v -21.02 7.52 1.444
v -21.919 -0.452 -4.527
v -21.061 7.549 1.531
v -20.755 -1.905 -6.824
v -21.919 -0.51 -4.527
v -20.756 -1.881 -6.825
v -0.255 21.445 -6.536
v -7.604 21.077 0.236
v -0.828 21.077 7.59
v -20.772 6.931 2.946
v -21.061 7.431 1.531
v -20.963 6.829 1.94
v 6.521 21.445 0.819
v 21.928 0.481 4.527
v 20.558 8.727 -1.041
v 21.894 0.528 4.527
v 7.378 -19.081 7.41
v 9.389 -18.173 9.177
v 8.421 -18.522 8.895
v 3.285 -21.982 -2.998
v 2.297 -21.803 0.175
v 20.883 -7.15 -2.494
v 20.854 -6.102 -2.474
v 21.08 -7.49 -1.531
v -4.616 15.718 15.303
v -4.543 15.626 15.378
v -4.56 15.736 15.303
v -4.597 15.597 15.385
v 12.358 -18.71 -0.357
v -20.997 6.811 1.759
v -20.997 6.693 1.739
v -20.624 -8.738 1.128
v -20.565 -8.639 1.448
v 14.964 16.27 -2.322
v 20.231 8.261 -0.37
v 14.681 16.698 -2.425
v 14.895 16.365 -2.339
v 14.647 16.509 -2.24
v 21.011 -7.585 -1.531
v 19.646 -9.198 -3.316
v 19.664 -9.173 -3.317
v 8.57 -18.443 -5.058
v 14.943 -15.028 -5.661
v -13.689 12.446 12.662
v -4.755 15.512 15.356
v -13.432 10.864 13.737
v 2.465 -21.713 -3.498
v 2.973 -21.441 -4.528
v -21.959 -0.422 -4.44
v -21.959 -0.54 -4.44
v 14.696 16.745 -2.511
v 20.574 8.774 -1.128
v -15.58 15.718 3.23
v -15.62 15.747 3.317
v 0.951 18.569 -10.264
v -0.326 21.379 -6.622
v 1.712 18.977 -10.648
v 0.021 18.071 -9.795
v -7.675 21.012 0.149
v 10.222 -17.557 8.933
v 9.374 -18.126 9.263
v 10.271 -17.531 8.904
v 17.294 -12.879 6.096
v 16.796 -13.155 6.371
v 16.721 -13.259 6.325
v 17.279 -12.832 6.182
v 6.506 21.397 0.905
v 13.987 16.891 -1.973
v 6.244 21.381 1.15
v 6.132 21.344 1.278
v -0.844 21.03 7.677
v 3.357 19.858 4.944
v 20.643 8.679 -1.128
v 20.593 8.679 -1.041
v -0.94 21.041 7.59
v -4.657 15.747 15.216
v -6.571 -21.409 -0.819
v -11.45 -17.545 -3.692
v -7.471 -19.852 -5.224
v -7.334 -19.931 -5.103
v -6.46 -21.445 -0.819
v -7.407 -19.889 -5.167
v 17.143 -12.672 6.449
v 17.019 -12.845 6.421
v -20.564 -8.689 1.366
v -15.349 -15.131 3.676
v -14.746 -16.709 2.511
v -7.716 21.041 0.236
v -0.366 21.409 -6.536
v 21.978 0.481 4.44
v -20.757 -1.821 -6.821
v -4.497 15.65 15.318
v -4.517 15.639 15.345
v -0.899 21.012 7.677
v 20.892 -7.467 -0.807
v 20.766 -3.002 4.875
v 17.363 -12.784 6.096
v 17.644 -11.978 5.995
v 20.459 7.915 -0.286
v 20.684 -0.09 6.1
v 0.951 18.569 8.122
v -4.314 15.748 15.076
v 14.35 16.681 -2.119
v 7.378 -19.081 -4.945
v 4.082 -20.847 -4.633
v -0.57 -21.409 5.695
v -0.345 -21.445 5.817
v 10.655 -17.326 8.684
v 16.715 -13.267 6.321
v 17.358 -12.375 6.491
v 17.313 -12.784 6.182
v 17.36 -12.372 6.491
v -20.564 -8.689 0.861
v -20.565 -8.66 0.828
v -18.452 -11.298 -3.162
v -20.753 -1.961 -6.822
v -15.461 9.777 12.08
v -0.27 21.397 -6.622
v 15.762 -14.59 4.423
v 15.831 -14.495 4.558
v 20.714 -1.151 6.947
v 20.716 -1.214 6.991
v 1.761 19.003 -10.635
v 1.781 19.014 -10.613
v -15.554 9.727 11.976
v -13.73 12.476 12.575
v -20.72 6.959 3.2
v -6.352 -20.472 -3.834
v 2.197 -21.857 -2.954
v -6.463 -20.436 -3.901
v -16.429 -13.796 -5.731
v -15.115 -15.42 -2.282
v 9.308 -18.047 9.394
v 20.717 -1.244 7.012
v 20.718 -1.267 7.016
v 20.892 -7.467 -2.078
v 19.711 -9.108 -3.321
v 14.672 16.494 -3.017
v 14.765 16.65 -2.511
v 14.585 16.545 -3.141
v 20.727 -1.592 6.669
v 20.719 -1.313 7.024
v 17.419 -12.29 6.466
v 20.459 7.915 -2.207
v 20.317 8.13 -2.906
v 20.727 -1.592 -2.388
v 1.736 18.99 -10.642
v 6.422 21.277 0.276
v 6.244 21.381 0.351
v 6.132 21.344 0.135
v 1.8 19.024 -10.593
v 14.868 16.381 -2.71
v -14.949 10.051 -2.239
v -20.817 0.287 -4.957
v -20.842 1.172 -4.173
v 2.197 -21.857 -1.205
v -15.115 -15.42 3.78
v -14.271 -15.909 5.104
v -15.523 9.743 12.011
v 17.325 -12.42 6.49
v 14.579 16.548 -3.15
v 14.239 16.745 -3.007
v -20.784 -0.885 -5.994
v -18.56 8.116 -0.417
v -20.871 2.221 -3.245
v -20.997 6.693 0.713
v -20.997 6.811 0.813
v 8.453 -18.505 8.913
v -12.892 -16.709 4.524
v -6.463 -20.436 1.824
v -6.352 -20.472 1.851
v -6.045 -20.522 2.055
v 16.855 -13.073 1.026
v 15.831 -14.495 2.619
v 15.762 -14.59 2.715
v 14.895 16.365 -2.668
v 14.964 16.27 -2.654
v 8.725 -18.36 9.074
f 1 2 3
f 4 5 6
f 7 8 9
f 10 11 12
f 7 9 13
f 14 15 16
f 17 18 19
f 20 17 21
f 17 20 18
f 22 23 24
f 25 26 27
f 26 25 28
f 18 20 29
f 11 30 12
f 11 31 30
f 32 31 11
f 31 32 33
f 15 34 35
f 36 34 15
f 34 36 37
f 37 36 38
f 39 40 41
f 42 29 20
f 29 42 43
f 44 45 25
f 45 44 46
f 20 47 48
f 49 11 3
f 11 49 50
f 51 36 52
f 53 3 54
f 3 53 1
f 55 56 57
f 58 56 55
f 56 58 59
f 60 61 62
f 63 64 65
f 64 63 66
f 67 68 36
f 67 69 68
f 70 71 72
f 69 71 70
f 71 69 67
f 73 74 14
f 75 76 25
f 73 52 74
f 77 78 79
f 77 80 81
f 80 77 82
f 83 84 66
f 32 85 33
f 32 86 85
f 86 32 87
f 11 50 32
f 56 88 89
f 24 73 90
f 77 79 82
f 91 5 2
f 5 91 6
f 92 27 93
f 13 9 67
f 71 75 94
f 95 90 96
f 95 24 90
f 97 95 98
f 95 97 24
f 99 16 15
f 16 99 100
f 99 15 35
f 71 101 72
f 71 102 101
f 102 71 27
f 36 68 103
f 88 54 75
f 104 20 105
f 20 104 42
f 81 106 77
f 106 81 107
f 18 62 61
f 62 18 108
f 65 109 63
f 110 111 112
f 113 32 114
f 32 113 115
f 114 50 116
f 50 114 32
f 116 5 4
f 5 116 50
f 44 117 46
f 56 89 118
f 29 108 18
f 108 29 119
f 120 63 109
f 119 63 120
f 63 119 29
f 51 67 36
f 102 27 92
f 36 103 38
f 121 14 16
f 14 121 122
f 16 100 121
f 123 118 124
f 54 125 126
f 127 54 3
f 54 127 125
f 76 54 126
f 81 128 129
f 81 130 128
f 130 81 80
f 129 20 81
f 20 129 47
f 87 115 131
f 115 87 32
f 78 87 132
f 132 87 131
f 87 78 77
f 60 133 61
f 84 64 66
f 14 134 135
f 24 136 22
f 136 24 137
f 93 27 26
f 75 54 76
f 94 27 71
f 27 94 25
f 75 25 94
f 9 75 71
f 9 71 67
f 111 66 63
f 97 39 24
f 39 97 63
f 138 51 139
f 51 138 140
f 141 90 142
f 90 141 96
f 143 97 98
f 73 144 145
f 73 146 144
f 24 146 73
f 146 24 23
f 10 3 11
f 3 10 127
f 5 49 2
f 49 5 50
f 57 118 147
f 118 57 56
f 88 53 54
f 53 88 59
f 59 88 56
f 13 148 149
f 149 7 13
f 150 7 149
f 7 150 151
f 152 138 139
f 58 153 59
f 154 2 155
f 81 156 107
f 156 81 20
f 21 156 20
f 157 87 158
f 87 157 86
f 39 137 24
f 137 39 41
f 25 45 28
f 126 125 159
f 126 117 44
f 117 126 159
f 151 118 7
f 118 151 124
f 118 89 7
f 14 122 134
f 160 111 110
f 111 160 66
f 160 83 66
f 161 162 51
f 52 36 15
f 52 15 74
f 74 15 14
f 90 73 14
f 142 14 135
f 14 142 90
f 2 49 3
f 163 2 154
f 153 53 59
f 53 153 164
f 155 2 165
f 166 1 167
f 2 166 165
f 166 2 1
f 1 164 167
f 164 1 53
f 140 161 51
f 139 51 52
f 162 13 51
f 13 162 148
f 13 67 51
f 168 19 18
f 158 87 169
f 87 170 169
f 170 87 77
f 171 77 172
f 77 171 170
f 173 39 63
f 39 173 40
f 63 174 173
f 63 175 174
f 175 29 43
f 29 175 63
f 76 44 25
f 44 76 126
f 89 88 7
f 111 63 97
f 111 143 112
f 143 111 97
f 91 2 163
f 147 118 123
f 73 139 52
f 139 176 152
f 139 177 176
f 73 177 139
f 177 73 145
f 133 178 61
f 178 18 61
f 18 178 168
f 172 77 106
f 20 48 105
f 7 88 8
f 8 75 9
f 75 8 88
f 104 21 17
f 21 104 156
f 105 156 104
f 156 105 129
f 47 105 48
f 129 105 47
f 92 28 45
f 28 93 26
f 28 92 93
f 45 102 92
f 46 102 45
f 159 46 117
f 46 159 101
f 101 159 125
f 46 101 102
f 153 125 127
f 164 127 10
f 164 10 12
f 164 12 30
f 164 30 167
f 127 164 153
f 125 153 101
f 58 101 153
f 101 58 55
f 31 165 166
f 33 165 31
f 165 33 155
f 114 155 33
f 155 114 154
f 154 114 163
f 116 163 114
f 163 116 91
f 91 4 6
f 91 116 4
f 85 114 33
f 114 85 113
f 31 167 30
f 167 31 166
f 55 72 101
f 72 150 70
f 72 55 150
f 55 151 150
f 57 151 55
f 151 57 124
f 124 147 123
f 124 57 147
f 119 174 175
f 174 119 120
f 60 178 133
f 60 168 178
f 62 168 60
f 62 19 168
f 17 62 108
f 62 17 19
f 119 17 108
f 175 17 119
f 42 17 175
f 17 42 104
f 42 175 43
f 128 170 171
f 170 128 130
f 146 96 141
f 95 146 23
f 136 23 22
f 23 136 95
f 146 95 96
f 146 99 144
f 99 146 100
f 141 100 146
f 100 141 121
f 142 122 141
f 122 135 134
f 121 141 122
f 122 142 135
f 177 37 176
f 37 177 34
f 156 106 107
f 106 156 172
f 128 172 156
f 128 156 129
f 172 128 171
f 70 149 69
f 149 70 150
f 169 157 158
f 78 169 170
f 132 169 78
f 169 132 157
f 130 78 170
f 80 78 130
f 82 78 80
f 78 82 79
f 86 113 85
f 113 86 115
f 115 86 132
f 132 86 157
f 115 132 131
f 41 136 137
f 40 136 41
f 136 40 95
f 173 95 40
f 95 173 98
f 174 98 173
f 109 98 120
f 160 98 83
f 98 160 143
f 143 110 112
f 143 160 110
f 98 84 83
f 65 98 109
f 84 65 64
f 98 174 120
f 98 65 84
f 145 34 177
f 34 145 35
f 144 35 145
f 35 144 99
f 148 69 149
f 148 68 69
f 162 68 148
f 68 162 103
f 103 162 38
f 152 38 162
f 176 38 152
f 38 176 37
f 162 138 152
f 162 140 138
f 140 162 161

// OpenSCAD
// Auto-generated OpenSCAD file

    inner_points = 10*[[1.529747169709951, 0.0887684815985697, 1.6180339887495454], [-0.6650403250001585, -1.087029682257868, -1.8090169943750285], [0.6748581958379799, 0.22720562383973383, 2.1180339887497732], [-1.5199292988721298, -0.9485925400167037, -1.3090169943748005], [1.502961023190905, 1.0394477122238417, 1.3090169943748005], [-0.6918264715192047, -0.13635045163259588, -2.1180339887497732], [0.6480720493189337, 1.1778848544650058, 1.8090169943750285], [-1.5467154453911758, 0.0020866906085682327, -1.6180339887495454], [0.7347538403093706, -1.8985777606351613, 0.8090169943743729], [0.21663479539132455, -2.176146055124717, -5.111466805374221e-13], [0.6212859027994219, 2.128564085090691, -0.49999999999971656], [0.10316685788137583, 1.8509957906011352, -1.3090169943746006], [2.0626732322522554, -0.15918577764171576, 0.8090169943744226], [1.5565333162282435, -0.8619107490260339, -1.309016994375499], [-1.5467154453904224, 0.002086690607900017, 1.618033988750244], [-2.0648344903084683, -0.27548160388165555, 0.8090169943753601], [2.035887085733209, 0.7914934529835562, 0.4999999999996777], [1.5297471697091976, 0.08876848159923792, -1.618033988750244], [-1.5735015919094684, 0.9527659212331719, 1.309016994375499], [-2.0916206368275145, 0.6751976267436165, 0.5000000000006152], [2.0626732322518784, -0.15918577764138167, -0.809016994375472], [0.1732938998954964, -0.6379147475740927, -2.1180339887500783], [-0.1902621755767213, 0.7287699197812307, 2.1180339887500783], [-2.0648344903088454, -0.2754816038813214, -0.8090169943745347], [0.7181990913331984, -1.3110256837103498, 1.6180339887494455], [-0.6382541784808796, -2.037708912883346, -0.5000000000002833], [0.6212859027996548, 2.128564085090484, 0.5000000000002833], [-0.7351673670144232, 1.4018808559174876, -1.6180339887494455], [1.5730880652047925, -1.4494628259511797, -0.500000000000677], [1.5029610231902952, 1.0394477122243824, -1.3090169943750942], [1.5565333162288535, -0.8619107490265745, 1.3090169943743954], [-0.12013513356321057, -1.7601406183934567, -1.309016994375294], [0.1732938998964831, -0.6379147475749672, 2.118033988749711], [-1.5033745498955808, -1.5361446169418493, -0.49999999999997824], [1.486406274214356, 1.6269997891489871, 0.49999999999997824], [-0.190262175577708, 0.7287699197821053, -2.118033988749711], [0.10316685788198571, 1.8509957906005945, 1.309016994375294], [-1.5735015919100783, 0.9527659212337125, -1.3090169943743954], [1.5730880652050256, -1.4494628259513862, 0.49999999999932293], [0.7347538403089937, -1.8985777606348273, -0.8090169943755219], [1.486406274214123, 1.6269997891491939, -0.5000000000000218], [0.6480720493180911, 1.1778848544657528, -1.8090169943748664], [2.079227981228428, -0.7467378545665272, -6.49896803039951e-13], [0.7181990913324445, -1.3110256837096819, -1.6180339887503443], [-0.6918264715182181, -0.13635045163347048, 2.1180339887500166], [-2.0482797413322964, -0.8630336808064671, 2.875200078022999e-13], [2.0358870857329765, 0.7914934529837627, -0.5000000000003222], [0.6748581958369932, 0.22720562384060844, -2.1180339887500166], [-0.7351673670136694, 1.4018808559168197, 1.6180339887503443], [-2.0916206368277477, 0.6751976267438229, -0.4999999999993848]];

    outer_points = 10*[[1.9089405079323911, -0.4218501272152671, -1.0789145401017997], [-1.2043326607979576, -0.577474804500691, 1.7894618380401386], [1.8819218900924022, 0.577474804500691, -1.054021265088006], [-1.2313512786379466, 0.4218501272152671, 1.8143551130539322], [1.2313512786379466, -0.4218501272152671, -1.8143551130539322], [-1.8819218900924022, -0.577474804500691, 1.054021265088006], [1.2043326607979576, 0.577474804500691, -1.7894618380401386], [-1.9089405079323911, 0.4218501272152671, 1.0789145401017997], [1.8161383771497412, -0.48129346445006527, 1.2066755875633466], [1.0811942768032063, -0.5180314672658928, 1.883807397859486], [-1.0541756589632172, -0.48129346445006527, -1.9087006728732798], [-1.789119759309752, -0.5180314672658928, -1.2315688625771404], [1.604429700784257, -1.3321032531169081, -0.7983572106372436], [0.028548915388096174, -2.1349731725874808, 0.6535613890536225], [0.6490403139063483, 2.1349731725874808, 0.08187918389851007], [-0.0859037864401867, 2.0982351697716535, 0.7590109941946495], [0.9268404714898124, -1.3321032531169081, -1.5337977835893761], [-0.6490403139063483, -2.1349731725874808, -0.08187918389851007], [-0.028548915388096174, 2.1349731725874808, -0.6535613890536225], [-0.7634930157346311, 2.0982351697716535, 0.02357042124251696], [0.3254392898648874, -2.188664775803015, -0.2998395325355988], [-1.2941585375254203, -1.3745929899519995, 1.192357232218884], [1.2941585375254203, 1.3745929899519995, -1.192357232218884], [-1.3648941973595563, 1.2416736470855463, 1.2575286722962942], [2.1878247482682935, 0.04809067002531284, 0.4440474477137366], [0.26371611372985215, -0.04809067002531284, 2.2168015419327753], [-0.26371611372985215, 0.04809067002531284, -2.2168015419327753], [-2.1878247482682935, -0.04809067002531284, -0.4440474477137366], [0.9358529551889134, -1.807795784376752, 0.9176718508015878], [-0.8380986775147881, -1.807795784376752, -1.0077365658927917], [2.097998871540831, -0.7490275154259958, -0.1530571581075182], [-0.28033019684298266, -0.8679141898955922, 2.038187409738281], [2.0542818295466843, 0.8679141898955922, -0.11277899304390138], [-0.3240472388371295, 0.7490275154259958, 2.0784655748018976], [0.3240472388371295, -0.7490275154259958, -2.0784655748018976], [-2.0542818295466843, -0.8679141898955922, 0.11277899304390138], [0.28033019684298266, 0.8679141898955922, -2.038187409738281], [-2.097998871540831, 0.7490275154259958, 0.1530571581075182], [1.7263125004222784, -1.2784116499013738, 0.609570981742092], [0.5371479662303715, -1.337854987136172, 1.7051932656649915], [-0.46641230639623543, -1.2784116499013738, -1.770364705742402], [-1.6555768405881424, -1.337854987136172, -0.6747424218195024], [1.2327433296657047, -1.8614873875922862, -0.03572907078763354], [-0.37015607357044544, -1.6650323753469007, 1.441082803917026], [1.4665184769797024, 1.6650323753469007, -0.2511149601747792], [-0.4575901575587392, 1.5688510352962752, 1.5216391340442594], [0.1363809262564476, -1.8614873875922862, -1.2256969145298804], [-1.4665184769797024, -1.6650323753469007, 0.2511149601747792], [0.37015607357044544, 1.6650323753469007, -1.441082803917026], [-1.5539525609679963, 1.5688510352962752, 0.3316712903020125]];

    // Convex hull for inner set (I)
    module inner_hull() {
        hull() {
            for (p = inner_points) {
                translate(p) sphere(r=0.1);
            }
        }
    }

    // Convex hull for outer set (O) minus inner hull (O \ I)
    module outer_minus_inner() {
        difference() {
            hull() {
                for (p = outer_points) {
                    translate(p) sphere(r=0.1);
                }
            }
            inner_hull(); // Subtract inner hull
        }
    }

    // Convex hull for outer set (O) minus all translated inner hulls
    module outer_minus_AllTranslationInner() {
        difference() {
            hull() {
                for (p = outer_points) {
                    translate(p) sphere(r=0.1);
                }
            }
            hull() {
                translate([0,0,50]) inner_hull();
                translate([0,0,-50]) inner_hull();
            }; // Subtract translated inner hulls
        }
    }

    // Difference between outer_minus_inner and outer_minus_AllTranslationInner
    module outer_minus_inner_diff() {
        difference() {
            // Outer minus inner
            difference() {
                hull() {
                    for (p = outer_points) {
                        translate(p) sphere(r=0.1);
                    }
                }
                inner_hull();
            }

            // Subtract Outer minus AllTranslationInner
            difference() {
                hull() {
                    for (p = outer_points) {
                        translate(p) sphere(r=0.1);
                    }
                }
                hull() {
                    translate([0,0,50]) inner_hull();
                    translate([0,0,-50]) inner_hull();
                };
            }
        }
    }

    // Rendering all with colors applied
    color([0, 1, 0, 1]) outer_minus_AllTranslationInner(); // Opaque green
    
